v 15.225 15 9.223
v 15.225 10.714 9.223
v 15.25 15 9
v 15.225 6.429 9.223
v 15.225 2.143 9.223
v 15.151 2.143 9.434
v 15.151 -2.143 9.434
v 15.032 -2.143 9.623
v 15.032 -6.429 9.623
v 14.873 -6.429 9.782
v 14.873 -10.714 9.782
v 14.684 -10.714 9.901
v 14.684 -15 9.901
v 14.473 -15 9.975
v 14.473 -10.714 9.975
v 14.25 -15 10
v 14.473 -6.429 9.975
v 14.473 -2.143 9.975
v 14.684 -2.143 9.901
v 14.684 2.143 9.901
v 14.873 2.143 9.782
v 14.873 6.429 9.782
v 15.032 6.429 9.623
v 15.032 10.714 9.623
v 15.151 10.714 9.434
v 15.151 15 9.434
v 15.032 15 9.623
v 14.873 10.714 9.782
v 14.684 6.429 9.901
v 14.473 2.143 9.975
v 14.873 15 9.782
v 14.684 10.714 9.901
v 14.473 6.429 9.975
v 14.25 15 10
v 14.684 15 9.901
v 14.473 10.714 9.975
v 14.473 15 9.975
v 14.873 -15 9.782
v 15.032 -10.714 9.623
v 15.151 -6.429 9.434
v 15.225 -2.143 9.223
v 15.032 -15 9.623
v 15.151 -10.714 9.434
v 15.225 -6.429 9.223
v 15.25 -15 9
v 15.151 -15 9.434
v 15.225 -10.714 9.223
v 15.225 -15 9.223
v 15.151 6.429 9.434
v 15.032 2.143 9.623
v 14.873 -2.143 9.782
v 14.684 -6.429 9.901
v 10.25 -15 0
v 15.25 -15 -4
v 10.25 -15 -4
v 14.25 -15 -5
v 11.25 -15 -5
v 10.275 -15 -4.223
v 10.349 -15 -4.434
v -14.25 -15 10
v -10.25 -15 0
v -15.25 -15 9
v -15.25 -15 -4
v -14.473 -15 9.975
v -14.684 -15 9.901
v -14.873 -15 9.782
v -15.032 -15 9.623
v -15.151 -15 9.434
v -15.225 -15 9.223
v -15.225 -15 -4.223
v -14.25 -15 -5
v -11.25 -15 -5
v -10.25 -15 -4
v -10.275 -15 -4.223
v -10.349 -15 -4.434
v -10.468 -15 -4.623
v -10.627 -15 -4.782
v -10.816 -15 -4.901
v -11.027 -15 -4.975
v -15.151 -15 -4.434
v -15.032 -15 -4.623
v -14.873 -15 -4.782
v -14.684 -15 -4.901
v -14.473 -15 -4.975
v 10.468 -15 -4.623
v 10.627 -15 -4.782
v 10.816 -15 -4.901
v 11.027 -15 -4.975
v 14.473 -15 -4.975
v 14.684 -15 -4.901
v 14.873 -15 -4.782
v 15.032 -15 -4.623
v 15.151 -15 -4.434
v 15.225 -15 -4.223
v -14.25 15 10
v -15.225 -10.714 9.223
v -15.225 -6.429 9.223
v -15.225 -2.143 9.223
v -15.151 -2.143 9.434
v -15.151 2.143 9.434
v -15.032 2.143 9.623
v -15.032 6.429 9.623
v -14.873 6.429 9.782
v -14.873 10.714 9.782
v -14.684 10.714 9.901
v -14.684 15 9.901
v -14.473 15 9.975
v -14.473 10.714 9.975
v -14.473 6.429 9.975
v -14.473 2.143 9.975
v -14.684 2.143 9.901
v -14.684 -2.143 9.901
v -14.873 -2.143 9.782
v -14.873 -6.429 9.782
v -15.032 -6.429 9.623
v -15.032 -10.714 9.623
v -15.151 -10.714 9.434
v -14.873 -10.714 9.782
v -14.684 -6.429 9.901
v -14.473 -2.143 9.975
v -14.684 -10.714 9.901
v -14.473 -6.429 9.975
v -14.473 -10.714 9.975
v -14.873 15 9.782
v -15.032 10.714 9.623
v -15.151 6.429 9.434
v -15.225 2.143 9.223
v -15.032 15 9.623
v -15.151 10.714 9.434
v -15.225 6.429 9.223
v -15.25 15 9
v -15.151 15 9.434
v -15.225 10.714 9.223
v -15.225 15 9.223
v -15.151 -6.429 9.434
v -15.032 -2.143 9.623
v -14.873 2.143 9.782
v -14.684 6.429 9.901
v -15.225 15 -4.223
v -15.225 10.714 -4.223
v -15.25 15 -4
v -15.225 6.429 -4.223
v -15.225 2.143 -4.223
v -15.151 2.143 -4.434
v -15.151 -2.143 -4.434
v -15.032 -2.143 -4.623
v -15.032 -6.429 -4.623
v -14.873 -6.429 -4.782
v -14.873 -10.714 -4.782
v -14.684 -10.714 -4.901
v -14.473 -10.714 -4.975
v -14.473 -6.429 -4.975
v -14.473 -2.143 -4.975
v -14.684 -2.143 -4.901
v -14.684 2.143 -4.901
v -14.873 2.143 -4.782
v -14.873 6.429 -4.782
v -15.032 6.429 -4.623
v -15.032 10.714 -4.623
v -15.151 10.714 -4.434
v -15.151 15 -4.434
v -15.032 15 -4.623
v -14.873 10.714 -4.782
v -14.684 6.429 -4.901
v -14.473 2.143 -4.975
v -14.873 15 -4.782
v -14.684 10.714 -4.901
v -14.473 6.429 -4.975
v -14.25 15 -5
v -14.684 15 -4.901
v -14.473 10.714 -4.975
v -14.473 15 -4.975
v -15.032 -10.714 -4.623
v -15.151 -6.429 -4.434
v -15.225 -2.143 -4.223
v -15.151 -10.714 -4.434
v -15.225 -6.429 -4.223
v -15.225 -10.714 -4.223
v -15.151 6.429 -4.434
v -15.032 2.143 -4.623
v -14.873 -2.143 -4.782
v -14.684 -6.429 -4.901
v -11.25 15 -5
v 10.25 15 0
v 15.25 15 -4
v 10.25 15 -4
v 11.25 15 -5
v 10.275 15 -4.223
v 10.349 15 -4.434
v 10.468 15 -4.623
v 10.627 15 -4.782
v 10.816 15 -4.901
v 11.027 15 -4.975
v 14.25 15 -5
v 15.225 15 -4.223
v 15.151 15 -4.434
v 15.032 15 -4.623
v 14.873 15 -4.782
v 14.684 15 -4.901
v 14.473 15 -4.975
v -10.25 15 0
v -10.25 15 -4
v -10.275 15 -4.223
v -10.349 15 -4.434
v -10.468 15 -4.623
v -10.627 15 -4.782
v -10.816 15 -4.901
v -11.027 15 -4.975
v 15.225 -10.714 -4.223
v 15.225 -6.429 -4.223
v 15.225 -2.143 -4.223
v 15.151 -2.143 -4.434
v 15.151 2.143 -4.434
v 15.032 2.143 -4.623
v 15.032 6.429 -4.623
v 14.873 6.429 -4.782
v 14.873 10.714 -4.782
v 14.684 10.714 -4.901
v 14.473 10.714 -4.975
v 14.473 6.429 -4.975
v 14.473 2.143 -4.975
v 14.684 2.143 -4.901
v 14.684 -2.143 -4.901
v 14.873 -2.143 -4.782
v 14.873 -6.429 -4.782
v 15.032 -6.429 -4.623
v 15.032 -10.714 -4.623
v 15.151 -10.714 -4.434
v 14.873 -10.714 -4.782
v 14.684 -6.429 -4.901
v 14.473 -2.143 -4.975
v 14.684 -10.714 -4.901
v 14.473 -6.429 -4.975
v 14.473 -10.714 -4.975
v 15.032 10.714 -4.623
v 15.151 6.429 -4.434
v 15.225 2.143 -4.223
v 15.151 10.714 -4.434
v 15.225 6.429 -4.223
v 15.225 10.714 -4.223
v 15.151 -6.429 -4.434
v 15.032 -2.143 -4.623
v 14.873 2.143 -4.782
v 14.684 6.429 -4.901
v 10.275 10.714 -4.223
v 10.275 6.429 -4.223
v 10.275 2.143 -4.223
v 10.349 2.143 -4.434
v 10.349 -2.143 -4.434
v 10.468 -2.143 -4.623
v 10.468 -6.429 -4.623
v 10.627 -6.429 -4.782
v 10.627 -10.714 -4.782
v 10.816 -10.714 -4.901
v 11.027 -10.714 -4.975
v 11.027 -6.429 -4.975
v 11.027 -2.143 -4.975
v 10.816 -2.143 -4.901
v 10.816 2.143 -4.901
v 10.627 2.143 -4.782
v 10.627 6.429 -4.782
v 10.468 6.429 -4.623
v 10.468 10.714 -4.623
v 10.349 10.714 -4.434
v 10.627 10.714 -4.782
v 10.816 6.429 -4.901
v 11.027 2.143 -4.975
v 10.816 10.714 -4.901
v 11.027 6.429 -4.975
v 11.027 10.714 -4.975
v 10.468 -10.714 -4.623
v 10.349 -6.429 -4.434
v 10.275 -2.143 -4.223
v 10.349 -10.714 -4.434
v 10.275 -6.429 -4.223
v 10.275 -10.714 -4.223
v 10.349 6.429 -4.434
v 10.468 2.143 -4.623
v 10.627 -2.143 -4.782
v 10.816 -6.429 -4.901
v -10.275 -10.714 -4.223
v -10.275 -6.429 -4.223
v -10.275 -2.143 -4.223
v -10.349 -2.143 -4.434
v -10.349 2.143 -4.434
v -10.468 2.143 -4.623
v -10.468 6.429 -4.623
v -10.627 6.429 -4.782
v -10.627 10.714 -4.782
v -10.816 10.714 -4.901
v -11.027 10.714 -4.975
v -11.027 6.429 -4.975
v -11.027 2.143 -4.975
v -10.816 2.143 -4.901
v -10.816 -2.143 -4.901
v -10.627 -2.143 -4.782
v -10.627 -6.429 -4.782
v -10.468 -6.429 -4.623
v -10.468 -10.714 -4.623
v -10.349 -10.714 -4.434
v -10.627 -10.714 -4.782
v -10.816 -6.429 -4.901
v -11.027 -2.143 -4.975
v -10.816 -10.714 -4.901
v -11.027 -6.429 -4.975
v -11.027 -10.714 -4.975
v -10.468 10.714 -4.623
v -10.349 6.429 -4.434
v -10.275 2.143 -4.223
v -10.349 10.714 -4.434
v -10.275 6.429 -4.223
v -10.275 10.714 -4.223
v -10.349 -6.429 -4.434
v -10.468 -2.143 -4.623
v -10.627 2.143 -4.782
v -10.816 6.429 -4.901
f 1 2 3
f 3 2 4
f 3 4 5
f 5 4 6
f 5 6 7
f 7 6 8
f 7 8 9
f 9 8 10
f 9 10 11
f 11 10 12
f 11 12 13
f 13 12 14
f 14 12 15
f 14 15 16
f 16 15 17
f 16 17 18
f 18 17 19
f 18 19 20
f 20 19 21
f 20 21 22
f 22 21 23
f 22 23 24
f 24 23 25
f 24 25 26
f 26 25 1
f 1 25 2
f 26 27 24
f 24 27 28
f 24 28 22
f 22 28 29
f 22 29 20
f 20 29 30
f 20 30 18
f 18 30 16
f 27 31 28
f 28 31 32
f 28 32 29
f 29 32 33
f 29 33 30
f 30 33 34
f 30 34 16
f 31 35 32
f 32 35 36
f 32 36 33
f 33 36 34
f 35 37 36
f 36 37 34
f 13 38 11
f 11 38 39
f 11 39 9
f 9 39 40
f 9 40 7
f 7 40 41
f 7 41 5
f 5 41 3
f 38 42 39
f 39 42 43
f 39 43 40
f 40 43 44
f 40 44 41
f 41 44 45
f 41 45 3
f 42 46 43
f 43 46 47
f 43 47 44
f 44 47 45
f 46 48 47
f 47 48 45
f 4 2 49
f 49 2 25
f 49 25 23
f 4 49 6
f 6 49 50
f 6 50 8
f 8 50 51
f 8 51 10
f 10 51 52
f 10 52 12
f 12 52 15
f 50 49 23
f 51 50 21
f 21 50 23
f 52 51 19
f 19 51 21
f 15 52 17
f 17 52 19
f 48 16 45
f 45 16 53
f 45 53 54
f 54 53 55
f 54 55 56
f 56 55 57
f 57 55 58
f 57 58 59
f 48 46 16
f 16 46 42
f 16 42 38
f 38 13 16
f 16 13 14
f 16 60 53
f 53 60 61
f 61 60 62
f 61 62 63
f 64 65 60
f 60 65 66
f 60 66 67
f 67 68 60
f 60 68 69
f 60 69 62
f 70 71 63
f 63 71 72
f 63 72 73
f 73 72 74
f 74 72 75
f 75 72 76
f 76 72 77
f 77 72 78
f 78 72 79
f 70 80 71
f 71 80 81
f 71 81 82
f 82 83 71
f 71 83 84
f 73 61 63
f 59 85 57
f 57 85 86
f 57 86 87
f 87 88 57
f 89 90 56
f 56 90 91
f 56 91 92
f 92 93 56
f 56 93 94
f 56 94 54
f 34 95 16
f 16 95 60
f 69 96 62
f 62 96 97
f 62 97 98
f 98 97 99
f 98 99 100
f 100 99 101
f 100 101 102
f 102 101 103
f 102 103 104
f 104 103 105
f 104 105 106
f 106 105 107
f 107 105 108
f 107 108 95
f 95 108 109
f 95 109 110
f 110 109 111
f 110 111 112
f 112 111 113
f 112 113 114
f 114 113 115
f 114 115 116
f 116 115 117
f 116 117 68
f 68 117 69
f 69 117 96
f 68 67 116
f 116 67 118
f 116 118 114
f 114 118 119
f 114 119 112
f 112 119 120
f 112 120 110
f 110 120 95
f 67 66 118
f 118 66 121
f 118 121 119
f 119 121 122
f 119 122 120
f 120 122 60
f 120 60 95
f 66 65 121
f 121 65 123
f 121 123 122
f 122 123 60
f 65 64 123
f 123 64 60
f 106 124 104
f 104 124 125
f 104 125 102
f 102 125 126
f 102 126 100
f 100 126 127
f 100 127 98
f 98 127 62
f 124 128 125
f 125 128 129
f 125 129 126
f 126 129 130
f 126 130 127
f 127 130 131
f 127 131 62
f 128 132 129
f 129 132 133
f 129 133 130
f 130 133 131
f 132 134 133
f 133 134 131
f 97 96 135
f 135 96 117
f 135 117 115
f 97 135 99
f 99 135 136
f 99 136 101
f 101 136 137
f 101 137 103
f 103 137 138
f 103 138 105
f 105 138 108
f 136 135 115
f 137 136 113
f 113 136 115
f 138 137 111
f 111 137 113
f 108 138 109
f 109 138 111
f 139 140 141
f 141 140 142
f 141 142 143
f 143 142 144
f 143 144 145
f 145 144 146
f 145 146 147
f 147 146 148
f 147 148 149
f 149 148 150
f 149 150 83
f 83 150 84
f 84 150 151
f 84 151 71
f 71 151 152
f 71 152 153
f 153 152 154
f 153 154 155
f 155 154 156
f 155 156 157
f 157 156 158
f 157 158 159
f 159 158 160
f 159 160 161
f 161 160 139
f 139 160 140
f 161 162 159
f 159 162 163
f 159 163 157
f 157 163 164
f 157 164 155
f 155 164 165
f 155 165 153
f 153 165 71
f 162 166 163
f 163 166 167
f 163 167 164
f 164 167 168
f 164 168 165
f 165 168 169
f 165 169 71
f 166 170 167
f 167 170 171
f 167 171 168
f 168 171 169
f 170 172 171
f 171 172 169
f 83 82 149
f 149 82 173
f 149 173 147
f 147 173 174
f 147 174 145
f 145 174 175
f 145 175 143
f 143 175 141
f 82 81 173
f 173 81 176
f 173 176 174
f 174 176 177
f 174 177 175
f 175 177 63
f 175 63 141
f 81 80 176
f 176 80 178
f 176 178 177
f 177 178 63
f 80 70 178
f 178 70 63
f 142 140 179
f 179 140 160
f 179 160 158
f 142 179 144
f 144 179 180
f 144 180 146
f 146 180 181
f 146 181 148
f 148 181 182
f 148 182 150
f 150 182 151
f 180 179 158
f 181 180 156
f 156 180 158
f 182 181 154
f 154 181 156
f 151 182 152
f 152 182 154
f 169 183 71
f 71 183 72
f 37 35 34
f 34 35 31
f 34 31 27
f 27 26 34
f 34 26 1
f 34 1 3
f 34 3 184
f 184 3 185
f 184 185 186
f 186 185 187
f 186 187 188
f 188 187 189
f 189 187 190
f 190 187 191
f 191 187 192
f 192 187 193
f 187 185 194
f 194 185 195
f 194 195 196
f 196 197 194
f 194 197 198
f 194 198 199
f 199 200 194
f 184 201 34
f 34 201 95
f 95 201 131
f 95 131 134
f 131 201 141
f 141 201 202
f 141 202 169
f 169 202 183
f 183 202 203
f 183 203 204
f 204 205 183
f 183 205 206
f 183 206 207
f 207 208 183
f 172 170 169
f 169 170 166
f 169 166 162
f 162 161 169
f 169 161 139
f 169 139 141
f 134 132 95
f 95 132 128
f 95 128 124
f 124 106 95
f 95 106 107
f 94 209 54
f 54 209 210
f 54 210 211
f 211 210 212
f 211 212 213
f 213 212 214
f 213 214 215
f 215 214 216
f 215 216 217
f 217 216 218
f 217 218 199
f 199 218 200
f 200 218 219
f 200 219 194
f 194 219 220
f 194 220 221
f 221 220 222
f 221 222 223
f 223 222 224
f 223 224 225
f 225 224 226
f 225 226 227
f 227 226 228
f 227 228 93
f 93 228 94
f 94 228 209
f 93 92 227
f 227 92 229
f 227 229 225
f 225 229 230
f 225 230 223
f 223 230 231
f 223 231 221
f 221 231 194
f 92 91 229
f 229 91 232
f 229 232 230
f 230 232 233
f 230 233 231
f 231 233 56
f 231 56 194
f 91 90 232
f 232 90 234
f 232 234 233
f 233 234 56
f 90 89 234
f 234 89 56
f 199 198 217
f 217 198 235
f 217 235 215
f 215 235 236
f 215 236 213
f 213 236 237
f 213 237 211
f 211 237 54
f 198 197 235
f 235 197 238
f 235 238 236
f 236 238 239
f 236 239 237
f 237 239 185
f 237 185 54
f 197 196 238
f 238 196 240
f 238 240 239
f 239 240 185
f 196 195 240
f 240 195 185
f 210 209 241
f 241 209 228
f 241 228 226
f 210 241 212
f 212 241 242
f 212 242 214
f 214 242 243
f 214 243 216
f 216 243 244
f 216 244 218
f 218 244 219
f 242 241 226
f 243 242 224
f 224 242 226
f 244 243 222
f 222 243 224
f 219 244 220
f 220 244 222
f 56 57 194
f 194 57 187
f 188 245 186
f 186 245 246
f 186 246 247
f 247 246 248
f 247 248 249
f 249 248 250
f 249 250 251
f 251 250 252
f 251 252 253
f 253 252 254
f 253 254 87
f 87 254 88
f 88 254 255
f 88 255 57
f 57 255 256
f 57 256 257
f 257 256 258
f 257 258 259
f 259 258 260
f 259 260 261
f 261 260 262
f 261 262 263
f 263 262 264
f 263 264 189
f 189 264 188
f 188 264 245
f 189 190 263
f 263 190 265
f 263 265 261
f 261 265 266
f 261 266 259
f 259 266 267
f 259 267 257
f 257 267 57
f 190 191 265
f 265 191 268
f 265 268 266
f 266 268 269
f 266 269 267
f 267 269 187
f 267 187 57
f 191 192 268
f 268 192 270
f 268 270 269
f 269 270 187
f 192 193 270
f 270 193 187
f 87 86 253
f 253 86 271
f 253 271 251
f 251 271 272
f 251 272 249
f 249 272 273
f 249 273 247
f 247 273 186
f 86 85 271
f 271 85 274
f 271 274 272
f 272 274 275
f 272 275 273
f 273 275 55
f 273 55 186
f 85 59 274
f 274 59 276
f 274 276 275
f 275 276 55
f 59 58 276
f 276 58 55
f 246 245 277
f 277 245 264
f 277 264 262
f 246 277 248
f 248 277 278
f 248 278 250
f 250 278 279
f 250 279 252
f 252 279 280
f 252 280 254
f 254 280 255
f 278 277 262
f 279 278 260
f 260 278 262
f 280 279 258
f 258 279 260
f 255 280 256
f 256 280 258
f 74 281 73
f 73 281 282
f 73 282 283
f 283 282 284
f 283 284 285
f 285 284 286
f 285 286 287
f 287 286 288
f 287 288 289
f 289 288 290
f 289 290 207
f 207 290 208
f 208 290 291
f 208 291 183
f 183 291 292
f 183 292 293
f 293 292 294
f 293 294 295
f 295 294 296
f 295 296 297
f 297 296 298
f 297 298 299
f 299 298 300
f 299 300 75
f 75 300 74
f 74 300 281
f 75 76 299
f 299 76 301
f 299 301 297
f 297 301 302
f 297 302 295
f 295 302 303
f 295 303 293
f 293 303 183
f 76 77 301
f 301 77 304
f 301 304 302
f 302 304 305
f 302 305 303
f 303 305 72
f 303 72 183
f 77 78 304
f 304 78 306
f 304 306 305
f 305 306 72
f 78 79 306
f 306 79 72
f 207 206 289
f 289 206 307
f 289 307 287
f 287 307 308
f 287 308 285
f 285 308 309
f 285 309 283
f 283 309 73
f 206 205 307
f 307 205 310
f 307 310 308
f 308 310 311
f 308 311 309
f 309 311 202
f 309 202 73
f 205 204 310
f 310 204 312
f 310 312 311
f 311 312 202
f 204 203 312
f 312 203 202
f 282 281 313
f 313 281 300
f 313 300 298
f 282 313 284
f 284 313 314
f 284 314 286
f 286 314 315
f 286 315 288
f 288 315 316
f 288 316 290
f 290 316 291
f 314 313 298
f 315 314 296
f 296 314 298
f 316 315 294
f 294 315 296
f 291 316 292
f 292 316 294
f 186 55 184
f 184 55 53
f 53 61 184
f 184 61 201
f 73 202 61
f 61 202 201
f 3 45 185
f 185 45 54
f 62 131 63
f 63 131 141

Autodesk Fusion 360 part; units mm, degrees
sketch "Sketch1" plane through (0, 0, 0) normal (0, 0, 1) x (1, 0, 0)
  line L0 (10.25, 15) -> (-10.25, 15)
  line L1 (-10.25, 15) -> (-10.25, -15)
  line L2 (-10.25, -15) -> (10.25, -15)
  line L3 (10.25, -15) -> (10.25, 15)
  line L4 (10.25, 15) -> (-10.25, -15) construction
  line L5 (-10.25, 15) -> (10.25, -15) construction
  line L6 (-10.25, 15) -> (-15.25, 15)
  line L7 (-15.25, 15) -> (-15.25, -15)
  line L8 (-15.25, -15) -> (-10.25, -15)
  line L9 (-10.25, -15) -> (-10.25, 15)
  line L10 (10.25, 15) -> (15.25, 15)
  line L11 (15.25, 15) -> (15.25, -15)
  line L12 (15.25, -15) -> (10.25, -15)
  line L13 (10.25, -15) -> (10.25, 15)
  dimension "d1" = 20.5
  dimension "d2" = 30
  dimension "d3" = 5
  dimension "d4" = 30
  dimension "d5" = 5
  dimension "d6" = 30
extrude "Extrude1" add sketch "Sketch1" along normal blind 10
extrude "Extrude2" add sketch "Sketch1" against normal blind 5 contours L3 L10 L11 L12 L13 | L1 L6 L7 L8 L9
fillet "Fillet1" radius 1 6 edges at (-10.25, 0, -5) (10.25, 0, -5) (15.25, 0, -5) (-15.25, 0, -5) (-15.25, 0, 10) (15.25, 0, 10)
